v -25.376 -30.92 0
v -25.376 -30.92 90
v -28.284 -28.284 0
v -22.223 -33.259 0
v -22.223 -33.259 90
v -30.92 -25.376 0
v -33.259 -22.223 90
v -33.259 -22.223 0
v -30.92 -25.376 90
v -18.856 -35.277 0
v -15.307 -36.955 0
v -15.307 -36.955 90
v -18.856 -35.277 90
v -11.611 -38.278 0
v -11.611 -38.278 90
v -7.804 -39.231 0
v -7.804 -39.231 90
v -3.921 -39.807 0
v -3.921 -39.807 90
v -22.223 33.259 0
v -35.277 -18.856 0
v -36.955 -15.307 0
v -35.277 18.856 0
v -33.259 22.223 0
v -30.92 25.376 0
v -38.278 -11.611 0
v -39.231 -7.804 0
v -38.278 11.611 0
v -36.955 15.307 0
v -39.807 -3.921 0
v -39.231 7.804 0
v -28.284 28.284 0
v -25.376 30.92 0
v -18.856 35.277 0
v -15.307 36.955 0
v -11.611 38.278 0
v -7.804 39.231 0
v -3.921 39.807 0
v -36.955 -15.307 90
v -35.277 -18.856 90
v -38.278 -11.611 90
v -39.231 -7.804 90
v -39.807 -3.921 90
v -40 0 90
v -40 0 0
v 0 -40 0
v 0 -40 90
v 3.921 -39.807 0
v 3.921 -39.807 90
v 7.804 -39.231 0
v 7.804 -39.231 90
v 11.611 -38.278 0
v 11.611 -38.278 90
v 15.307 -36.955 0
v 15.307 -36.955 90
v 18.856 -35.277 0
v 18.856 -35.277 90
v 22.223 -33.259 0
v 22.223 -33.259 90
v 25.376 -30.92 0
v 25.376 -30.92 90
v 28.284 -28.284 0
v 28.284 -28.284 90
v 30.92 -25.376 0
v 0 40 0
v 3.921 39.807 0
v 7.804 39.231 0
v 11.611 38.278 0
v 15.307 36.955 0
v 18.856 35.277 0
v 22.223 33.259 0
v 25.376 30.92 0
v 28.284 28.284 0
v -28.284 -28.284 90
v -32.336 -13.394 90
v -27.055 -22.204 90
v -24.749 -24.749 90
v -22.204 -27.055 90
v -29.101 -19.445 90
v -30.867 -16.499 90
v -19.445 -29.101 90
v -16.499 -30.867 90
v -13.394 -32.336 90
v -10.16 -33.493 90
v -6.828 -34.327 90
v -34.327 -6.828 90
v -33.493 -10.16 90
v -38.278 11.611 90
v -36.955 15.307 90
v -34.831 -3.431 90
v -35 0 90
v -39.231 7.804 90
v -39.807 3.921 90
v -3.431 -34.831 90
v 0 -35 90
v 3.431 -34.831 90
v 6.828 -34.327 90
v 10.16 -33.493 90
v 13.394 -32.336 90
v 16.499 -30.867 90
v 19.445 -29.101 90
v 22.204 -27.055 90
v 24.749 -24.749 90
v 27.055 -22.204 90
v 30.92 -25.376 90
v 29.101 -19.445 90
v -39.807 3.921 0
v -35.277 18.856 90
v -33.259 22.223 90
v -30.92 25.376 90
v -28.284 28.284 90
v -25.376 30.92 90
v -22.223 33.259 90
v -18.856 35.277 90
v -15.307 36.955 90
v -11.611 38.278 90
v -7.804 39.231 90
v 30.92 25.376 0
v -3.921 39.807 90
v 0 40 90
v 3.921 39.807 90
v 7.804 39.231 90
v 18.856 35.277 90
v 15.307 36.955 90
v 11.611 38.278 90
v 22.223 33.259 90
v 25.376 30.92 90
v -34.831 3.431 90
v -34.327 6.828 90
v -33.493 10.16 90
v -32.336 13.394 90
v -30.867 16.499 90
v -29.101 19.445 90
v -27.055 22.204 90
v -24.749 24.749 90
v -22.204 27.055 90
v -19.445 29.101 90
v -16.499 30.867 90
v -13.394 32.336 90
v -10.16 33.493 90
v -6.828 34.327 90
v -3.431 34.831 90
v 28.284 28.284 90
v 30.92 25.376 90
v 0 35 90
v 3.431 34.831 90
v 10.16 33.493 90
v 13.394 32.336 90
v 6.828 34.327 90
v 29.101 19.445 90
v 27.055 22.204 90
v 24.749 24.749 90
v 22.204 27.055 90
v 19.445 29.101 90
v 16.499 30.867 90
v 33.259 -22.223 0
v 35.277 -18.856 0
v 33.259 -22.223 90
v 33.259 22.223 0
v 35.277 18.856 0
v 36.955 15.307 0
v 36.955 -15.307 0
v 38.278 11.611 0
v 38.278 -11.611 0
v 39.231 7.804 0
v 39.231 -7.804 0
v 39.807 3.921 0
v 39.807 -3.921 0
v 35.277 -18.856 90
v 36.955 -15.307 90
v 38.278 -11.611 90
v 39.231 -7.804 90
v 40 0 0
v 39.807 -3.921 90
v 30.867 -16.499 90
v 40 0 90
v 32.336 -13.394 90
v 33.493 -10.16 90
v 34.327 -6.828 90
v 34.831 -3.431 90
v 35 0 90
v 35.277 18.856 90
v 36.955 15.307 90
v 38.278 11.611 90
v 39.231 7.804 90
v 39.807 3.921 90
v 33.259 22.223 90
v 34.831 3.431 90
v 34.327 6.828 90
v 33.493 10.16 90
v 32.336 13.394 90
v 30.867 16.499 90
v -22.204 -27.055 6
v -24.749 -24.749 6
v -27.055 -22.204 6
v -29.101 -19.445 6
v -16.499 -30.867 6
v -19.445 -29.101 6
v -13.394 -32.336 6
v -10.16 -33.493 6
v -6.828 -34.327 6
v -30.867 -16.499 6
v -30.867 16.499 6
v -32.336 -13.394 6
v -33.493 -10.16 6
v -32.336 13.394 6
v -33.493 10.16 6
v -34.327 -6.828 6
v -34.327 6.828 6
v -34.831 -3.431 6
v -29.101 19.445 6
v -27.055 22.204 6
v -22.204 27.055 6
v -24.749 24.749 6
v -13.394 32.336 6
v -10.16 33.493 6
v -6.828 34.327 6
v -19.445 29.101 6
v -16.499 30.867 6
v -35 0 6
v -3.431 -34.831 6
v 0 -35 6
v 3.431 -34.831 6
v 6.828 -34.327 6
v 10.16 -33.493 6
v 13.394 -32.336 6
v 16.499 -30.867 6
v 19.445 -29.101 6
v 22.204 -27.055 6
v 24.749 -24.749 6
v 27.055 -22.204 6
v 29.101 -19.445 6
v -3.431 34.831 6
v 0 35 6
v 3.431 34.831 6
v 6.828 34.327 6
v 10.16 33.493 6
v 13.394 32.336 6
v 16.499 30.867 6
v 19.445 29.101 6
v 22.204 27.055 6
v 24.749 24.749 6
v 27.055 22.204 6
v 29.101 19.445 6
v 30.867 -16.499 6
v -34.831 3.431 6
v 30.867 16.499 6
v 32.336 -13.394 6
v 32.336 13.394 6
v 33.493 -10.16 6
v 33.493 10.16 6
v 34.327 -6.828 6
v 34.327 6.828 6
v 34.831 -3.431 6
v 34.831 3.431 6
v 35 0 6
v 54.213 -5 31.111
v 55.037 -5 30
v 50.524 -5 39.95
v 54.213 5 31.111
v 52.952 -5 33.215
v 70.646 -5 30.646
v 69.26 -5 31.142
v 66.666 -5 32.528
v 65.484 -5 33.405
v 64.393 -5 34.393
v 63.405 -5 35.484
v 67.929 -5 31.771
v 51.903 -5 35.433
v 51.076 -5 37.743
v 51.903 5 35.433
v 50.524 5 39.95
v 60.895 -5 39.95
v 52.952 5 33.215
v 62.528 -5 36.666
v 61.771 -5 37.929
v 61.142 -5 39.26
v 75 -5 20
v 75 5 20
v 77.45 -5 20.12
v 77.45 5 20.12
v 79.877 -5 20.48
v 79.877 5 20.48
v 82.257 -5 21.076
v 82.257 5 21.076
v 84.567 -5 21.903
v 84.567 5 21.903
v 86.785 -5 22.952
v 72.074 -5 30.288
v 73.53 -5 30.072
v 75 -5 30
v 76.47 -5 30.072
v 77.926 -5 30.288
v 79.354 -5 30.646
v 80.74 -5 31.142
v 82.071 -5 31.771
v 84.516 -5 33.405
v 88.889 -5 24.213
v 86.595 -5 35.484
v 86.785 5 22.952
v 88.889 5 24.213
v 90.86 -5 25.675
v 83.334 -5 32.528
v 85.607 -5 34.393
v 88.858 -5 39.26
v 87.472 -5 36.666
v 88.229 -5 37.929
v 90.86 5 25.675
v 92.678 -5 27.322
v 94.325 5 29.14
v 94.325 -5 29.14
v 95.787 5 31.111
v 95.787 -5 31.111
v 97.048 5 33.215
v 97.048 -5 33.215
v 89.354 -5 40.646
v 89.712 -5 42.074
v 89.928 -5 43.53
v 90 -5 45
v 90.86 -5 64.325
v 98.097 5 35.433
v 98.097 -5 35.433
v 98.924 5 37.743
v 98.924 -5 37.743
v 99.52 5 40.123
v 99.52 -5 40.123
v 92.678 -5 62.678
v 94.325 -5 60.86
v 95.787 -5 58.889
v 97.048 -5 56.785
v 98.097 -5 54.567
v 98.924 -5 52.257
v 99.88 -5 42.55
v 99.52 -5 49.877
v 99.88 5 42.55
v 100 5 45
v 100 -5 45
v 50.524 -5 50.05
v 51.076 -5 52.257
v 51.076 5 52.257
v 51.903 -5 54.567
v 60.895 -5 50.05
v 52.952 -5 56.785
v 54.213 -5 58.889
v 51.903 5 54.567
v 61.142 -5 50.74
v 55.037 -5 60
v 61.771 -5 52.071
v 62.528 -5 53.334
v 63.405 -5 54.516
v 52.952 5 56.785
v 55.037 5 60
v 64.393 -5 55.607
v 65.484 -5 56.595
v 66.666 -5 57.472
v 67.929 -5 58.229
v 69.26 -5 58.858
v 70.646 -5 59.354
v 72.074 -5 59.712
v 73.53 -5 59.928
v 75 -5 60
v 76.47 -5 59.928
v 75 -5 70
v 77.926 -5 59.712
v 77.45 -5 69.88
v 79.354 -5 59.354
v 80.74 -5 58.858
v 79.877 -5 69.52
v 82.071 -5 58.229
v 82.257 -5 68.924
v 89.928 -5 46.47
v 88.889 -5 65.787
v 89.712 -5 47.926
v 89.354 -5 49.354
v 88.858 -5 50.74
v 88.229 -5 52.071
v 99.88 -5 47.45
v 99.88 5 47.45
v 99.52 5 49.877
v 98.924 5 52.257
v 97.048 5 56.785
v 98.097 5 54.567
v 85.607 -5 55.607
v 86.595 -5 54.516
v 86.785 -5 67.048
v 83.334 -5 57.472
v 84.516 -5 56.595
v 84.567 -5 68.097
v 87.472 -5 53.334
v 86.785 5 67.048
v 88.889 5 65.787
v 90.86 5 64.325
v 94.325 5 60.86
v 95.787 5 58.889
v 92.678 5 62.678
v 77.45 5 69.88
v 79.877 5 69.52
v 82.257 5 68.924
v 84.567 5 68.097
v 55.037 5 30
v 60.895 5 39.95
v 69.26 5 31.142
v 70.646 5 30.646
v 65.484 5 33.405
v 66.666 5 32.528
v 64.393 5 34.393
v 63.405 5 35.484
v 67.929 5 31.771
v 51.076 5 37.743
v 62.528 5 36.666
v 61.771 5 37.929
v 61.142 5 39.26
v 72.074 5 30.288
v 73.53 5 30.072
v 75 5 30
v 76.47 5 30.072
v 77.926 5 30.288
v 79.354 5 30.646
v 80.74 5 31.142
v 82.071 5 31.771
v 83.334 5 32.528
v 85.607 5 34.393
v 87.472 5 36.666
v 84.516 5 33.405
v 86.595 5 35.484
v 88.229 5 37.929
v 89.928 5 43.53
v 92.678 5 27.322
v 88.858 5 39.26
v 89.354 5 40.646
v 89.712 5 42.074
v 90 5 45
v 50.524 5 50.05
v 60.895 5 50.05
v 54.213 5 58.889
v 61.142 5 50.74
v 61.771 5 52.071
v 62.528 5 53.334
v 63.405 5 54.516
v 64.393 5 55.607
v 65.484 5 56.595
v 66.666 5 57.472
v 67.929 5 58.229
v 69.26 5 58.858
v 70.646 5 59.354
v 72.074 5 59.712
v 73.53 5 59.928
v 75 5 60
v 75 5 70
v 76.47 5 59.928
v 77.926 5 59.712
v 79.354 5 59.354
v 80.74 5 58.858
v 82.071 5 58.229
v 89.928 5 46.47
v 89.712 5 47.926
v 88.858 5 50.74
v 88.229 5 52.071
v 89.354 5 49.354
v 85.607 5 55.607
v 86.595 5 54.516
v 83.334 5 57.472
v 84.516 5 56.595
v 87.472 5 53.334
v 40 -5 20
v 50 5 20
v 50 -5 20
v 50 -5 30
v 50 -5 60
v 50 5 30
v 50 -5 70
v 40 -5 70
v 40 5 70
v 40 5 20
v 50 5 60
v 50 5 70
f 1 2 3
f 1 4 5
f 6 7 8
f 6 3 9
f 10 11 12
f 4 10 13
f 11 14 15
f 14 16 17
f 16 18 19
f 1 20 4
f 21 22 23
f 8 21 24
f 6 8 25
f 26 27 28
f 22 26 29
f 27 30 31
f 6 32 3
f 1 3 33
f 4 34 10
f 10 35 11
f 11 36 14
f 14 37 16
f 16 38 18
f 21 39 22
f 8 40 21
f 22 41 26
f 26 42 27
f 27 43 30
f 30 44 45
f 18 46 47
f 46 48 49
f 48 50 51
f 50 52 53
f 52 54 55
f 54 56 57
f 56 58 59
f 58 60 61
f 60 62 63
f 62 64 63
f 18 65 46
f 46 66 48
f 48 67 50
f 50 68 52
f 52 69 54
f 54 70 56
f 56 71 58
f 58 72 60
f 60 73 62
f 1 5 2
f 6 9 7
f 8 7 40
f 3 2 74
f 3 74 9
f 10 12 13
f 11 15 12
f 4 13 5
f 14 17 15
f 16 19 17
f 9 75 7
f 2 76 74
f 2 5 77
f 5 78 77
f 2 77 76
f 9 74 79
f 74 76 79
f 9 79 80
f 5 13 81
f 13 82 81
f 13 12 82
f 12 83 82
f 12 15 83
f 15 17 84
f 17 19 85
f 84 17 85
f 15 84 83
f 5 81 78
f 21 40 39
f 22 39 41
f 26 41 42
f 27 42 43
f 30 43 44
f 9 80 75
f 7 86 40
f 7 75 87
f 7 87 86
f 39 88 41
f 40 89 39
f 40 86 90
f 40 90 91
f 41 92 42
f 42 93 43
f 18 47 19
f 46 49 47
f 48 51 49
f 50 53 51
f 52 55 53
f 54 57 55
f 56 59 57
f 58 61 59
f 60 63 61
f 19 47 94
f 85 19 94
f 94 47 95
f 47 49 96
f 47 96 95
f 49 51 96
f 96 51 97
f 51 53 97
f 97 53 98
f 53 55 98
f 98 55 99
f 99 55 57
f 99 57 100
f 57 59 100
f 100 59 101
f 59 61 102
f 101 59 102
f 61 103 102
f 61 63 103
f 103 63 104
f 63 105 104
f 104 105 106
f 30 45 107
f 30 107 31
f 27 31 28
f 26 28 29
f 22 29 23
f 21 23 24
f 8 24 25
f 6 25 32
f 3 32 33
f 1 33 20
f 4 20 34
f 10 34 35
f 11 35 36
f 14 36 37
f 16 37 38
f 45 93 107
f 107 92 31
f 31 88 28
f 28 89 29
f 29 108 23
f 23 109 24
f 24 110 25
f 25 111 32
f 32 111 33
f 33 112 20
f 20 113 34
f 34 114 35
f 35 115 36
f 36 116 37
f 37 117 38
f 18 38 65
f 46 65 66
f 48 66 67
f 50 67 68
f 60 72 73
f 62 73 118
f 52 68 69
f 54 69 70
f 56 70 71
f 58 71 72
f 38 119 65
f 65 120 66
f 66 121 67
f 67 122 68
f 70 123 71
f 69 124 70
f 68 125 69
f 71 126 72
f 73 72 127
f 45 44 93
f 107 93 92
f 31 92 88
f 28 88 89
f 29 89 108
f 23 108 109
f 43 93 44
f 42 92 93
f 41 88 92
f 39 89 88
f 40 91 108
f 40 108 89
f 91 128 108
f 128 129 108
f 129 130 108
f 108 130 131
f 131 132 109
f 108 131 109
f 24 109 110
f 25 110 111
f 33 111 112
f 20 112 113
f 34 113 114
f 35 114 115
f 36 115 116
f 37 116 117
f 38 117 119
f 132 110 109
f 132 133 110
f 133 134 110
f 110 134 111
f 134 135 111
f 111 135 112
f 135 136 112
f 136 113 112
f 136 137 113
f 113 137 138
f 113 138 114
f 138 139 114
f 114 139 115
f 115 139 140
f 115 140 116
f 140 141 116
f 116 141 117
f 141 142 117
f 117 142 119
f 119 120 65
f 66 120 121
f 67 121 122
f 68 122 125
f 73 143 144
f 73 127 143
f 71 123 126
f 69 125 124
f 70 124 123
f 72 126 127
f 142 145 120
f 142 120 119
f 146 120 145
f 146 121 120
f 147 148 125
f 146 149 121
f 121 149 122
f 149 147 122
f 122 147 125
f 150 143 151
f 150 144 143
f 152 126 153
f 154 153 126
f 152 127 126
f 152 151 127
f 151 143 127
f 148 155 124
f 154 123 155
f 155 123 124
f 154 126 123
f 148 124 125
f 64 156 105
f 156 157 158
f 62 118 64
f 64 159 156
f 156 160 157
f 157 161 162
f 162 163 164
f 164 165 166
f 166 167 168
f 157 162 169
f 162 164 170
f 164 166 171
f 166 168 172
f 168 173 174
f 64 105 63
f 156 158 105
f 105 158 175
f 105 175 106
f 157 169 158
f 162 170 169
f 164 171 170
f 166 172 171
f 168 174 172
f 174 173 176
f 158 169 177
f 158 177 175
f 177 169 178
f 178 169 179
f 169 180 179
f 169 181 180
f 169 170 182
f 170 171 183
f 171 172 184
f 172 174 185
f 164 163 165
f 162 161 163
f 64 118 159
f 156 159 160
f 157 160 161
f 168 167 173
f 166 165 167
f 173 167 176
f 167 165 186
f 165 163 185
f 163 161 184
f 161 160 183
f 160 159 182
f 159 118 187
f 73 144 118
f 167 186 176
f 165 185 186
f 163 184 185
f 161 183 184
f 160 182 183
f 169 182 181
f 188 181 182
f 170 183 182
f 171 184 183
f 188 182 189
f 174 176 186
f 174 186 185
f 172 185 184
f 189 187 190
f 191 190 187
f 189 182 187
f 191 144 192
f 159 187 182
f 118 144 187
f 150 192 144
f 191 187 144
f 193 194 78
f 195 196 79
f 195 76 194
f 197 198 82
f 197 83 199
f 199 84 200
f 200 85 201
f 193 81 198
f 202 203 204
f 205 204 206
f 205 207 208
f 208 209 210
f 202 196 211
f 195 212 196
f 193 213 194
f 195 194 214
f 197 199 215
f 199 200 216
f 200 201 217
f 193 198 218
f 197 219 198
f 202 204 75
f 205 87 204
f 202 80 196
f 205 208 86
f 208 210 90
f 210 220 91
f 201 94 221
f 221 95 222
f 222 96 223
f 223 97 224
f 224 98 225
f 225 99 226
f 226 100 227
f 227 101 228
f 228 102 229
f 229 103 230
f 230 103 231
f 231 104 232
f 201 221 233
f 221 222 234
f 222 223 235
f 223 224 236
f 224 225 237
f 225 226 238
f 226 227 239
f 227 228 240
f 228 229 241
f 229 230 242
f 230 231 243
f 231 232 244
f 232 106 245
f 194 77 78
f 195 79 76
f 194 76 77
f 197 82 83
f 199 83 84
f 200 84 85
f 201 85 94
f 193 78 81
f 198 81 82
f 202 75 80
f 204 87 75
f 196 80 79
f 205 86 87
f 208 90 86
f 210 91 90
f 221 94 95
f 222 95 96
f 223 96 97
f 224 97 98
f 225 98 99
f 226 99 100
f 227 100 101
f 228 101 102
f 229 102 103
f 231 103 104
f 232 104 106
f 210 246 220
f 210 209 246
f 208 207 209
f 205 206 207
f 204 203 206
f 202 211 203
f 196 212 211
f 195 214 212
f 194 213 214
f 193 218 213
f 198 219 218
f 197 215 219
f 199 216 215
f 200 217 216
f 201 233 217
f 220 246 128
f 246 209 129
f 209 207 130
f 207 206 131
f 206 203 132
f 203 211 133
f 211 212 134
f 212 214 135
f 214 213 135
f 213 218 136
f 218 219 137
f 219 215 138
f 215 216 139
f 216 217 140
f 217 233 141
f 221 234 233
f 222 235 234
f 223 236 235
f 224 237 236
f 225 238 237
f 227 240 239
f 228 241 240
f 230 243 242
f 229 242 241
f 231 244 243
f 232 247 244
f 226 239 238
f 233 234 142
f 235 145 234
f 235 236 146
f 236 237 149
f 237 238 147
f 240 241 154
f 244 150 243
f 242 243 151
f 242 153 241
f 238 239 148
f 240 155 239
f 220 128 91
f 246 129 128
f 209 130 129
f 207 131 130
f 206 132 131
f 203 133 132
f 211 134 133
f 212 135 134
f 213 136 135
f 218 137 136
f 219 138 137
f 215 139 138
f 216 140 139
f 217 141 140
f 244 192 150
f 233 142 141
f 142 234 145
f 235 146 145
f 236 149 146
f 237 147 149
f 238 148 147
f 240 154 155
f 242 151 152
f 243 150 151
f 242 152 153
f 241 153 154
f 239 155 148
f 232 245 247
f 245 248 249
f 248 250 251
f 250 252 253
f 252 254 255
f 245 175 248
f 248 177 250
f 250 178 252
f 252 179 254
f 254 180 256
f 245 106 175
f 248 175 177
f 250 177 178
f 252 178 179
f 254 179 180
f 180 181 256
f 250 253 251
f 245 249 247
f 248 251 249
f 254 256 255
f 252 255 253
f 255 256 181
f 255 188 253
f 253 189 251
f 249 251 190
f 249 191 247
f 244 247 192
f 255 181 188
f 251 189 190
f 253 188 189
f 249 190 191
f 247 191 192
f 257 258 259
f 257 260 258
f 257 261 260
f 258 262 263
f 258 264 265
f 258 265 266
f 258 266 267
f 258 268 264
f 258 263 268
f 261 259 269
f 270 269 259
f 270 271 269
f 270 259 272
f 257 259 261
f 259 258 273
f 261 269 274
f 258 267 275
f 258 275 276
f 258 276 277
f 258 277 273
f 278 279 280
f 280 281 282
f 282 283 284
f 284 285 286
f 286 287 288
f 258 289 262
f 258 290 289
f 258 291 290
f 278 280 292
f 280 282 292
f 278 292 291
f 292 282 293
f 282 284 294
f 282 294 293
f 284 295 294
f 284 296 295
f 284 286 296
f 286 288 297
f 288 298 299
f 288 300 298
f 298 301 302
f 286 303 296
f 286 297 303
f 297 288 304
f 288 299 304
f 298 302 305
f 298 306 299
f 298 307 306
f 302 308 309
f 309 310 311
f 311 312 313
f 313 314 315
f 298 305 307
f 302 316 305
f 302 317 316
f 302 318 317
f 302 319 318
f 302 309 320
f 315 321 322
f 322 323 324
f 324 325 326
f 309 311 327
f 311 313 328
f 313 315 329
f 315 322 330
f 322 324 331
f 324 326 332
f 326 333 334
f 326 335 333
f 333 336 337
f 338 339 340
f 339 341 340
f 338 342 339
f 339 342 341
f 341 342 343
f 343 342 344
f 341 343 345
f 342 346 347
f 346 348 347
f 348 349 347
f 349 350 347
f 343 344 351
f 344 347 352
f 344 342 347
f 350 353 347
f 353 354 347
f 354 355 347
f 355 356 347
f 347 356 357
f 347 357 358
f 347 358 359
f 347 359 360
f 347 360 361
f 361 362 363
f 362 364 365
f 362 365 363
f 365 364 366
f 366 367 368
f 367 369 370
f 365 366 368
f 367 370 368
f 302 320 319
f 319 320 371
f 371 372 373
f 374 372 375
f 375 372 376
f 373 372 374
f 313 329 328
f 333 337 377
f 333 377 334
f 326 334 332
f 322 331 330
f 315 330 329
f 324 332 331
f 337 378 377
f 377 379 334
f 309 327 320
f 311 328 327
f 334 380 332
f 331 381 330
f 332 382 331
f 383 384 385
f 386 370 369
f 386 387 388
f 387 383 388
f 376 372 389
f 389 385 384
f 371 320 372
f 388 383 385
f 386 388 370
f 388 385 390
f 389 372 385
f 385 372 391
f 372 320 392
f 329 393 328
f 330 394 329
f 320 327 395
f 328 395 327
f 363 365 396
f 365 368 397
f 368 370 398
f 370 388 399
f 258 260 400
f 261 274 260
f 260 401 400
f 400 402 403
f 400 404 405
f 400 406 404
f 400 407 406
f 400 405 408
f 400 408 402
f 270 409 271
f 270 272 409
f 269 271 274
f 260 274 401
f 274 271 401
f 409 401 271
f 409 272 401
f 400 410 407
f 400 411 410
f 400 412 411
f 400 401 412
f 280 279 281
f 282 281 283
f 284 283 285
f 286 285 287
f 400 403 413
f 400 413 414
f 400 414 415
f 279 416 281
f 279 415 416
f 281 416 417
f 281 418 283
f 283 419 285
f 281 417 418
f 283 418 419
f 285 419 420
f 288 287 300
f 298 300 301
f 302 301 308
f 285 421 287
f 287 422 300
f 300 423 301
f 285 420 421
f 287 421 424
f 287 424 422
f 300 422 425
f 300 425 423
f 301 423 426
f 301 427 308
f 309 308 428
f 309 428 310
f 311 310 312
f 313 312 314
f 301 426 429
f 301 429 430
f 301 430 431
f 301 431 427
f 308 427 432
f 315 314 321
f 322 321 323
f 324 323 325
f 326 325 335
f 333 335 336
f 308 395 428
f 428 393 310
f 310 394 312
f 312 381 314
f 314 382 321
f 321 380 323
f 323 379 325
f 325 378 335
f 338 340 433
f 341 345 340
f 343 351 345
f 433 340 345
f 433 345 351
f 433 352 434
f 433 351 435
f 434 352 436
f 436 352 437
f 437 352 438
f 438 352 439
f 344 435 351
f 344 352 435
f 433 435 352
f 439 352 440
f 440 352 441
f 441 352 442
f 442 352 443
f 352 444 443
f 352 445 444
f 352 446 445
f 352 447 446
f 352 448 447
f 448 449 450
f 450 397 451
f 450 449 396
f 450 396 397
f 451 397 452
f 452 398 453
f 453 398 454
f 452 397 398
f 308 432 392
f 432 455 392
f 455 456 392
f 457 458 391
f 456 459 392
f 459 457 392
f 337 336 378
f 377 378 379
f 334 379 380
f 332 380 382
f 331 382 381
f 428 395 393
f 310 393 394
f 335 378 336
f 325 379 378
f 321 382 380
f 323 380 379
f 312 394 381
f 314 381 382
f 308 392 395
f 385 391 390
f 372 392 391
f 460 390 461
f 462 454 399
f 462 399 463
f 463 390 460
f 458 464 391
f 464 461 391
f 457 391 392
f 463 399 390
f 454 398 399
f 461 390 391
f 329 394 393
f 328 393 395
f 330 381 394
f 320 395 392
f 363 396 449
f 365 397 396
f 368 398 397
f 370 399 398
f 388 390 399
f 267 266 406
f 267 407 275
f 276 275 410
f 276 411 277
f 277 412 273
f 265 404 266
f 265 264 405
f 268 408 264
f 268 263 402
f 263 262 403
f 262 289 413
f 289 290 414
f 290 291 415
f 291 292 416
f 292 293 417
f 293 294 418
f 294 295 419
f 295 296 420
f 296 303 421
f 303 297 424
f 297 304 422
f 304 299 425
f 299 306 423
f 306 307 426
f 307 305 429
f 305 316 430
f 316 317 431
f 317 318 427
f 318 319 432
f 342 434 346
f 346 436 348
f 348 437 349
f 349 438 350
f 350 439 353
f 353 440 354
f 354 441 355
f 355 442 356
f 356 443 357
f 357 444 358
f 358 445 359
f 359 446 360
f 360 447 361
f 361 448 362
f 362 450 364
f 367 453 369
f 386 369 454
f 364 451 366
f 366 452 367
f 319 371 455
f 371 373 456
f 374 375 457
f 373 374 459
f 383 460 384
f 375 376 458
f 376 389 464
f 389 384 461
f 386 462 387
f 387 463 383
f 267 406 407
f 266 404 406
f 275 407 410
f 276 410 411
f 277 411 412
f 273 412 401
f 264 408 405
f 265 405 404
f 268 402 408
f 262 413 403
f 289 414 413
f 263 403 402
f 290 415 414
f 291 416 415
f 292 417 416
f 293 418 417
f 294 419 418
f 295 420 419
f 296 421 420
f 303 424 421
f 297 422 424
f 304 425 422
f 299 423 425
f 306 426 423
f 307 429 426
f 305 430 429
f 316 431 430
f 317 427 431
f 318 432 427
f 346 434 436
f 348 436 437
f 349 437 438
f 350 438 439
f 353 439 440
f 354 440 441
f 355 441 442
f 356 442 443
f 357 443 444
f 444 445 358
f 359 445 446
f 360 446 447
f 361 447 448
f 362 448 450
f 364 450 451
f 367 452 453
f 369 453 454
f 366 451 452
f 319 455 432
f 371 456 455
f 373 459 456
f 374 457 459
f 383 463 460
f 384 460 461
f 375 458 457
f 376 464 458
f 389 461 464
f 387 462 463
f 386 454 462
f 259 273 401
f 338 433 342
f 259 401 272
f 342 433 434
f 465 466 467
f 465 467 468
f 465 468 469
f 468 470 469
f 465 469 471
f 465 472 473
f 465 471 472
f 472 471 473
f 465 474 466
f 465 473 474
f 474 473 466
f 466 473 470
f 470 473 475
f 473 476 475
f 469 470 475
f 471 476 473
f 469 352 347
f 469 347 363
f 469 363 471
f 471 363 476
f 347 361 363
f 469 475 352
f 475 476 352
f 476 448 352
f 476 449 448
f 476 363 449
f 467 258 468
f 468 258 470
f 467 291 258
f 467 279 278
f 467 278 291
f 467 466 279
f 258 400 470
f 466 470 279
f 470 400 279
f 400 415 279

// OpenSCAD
// OpenSCAD Mug with Handle
// Global rendering quality (higher value = smoother curves)
$fn = 64;

// Mug body parameters
mug_outer_radius = 80 / 2; // 40mm
mug_inner_radius = 70 / 2; // 35mm
mug_height = 90;
mug_bottom_thickness = 6;

// Handle parameters
handle_thickness = 10;          // Thickness of the handle material
handle_inner_width = 25;        // Internal width of the finger hole (X direction)
handle_inner_height = 30;       // Internal height of the finger hole (Z direction)

// Calculate handle positioning
handle_z_center = mug_height / 2; // Center of the handle vertically on the mug
handle_y_center = 0;              // Center of the handle horizontally (aligned with mug's Y axis)

module mug_body() {
    difference() {
        // Outer cylinder of the mug
        cylinder(h = mug_height, r = mug_outer_radius);

        // Inner hollow part
        // Lifted by mug_bottom_thickness to create the solid bottom
        translate([0, 0, mug_bottom_thickness])
            cylinder(h = mug_height - mug_bottom_thickness, r = mug_inner_radius);
    }
}

module mug_handle() {
    union() {
        // 1. Vertical connecting bar
        // This bar connects the handle to the mug's outer surface (+X direction).
        // It spans the full height of the D-shaped handle.
        translate([
            mug_outer_radius,                           // Starts at the mug's outer surface (X)
            handle_y_center - handle_thickness / 2,     // Centered on Y axis
            handle_z_center - (handle_inner_height / 2 + handle_thickness) // Bottom Z of the handle
        ]) {
            cube([
                handle_thickness,                               // X-dimension (depth from mug into handle)
                handle_thickness,                               // Y-dimension (handle's thickness)
                handle_inner_height + 2 * handle_thickness      // Z-dimension (total height of the handle)
            ]);
        }

        // 2. Top horizontal bar
        // This bar forms the top part of the D-shape.
        translate([
            mug_outer_radius + handle_thickness,        // Starts after the vertical connecting bar (X)
            handle_y_center - handle_thickness / 2,     // Centered on Y axis
            handle_z_center + handle_inner_height / 2   // Top Z of the finger hole
        ]) {
            cube([
                handle_inner_width,                     // X-dimension (width of the finger hole part)
                handle_thickness,                       // Y-dimension (handle's thickness)
                handle_thickness                        // Z-dimension (height of this bar)
            ]);
        }

        // 3. Bottom horizontal bar
        // This bar forms the bottom part of the D-shape.
        translate([
            mug_outer_radius + handle_thickness,        // Starts after the vertical connecting bar (X)
            handle_y_center - handle_thickness / 2,     // Centered on Y axis
            handle_z_center - handle_inner_height / 2 - handle_thickness // Bottom Z of the finger hole
        ]) {
            cube([
                handle_inner_width,                     // X-dimension (width of the finger hole part)
                handle_thickness,                       // Y-dimension (handle's thickness)
                handle_thickness                        // Z-dimension (height of this bar)
            ]);
        }

        // 4. Outer D-shape arc
        // This creates the curved part of the D-shape handle.
        // It's formed by differencing two concentric cylinders and then cutting one half.
        outer_arc_radius = handle_inner_height / 2 + handle_thickness; // Radius of the outer curve
        inner_arc_radius = handle_inner_height / 2;                   // Radius of the inner cut for the arc

        arc_x_position = mug_outer_radius + handle_thickness + handle_inner_width; // X position of the arc's center
        arc_z_position = handle_z_center;                                          // Z position of the arc's center

        translate([arc_x_position, handle_y_center, arc_z_position])
        rotate([90, 0, 0]) { // Rotate so the cylinder's height is along Y, and the arc is in the XZ plane
            difference() {
                // Outer cylinder that defines the overall arc shape
                cylinder(r = outer_arc_radius, h = handle_thickness, center = true);
                
                // Inner cylinder to cut out the inside of the arc, creating a ring shape
                // Use a slightly larger height to ensure a clean cut through the entire handle_thickness
                cylinder(r = inner_arc_radius, h = handle_thickness * 1.01, center = true);
                
                // Cutting cube to remove the left half of the ring, forming the D-shape arc.
                // The cylinders are centered at [0,0,0] in this rotated coordinate system.
                // We want to keep the positive X half (right side), so we cut the negative X half (left side).
                translate([-(outer_arc_radius + 0.1), 0, 0]) // Position cutting cube to completely cover the negative X half
                    cube([outer_arc_radius + 0.2, handle_thickness * 1.01, outer_arc_radius * 2 + 0.2], center=true);
            }
        }
    }
}

// Assemble the complete mug by combining the body and the handle
union() {
    mug_body();
    mug_handle();
}
